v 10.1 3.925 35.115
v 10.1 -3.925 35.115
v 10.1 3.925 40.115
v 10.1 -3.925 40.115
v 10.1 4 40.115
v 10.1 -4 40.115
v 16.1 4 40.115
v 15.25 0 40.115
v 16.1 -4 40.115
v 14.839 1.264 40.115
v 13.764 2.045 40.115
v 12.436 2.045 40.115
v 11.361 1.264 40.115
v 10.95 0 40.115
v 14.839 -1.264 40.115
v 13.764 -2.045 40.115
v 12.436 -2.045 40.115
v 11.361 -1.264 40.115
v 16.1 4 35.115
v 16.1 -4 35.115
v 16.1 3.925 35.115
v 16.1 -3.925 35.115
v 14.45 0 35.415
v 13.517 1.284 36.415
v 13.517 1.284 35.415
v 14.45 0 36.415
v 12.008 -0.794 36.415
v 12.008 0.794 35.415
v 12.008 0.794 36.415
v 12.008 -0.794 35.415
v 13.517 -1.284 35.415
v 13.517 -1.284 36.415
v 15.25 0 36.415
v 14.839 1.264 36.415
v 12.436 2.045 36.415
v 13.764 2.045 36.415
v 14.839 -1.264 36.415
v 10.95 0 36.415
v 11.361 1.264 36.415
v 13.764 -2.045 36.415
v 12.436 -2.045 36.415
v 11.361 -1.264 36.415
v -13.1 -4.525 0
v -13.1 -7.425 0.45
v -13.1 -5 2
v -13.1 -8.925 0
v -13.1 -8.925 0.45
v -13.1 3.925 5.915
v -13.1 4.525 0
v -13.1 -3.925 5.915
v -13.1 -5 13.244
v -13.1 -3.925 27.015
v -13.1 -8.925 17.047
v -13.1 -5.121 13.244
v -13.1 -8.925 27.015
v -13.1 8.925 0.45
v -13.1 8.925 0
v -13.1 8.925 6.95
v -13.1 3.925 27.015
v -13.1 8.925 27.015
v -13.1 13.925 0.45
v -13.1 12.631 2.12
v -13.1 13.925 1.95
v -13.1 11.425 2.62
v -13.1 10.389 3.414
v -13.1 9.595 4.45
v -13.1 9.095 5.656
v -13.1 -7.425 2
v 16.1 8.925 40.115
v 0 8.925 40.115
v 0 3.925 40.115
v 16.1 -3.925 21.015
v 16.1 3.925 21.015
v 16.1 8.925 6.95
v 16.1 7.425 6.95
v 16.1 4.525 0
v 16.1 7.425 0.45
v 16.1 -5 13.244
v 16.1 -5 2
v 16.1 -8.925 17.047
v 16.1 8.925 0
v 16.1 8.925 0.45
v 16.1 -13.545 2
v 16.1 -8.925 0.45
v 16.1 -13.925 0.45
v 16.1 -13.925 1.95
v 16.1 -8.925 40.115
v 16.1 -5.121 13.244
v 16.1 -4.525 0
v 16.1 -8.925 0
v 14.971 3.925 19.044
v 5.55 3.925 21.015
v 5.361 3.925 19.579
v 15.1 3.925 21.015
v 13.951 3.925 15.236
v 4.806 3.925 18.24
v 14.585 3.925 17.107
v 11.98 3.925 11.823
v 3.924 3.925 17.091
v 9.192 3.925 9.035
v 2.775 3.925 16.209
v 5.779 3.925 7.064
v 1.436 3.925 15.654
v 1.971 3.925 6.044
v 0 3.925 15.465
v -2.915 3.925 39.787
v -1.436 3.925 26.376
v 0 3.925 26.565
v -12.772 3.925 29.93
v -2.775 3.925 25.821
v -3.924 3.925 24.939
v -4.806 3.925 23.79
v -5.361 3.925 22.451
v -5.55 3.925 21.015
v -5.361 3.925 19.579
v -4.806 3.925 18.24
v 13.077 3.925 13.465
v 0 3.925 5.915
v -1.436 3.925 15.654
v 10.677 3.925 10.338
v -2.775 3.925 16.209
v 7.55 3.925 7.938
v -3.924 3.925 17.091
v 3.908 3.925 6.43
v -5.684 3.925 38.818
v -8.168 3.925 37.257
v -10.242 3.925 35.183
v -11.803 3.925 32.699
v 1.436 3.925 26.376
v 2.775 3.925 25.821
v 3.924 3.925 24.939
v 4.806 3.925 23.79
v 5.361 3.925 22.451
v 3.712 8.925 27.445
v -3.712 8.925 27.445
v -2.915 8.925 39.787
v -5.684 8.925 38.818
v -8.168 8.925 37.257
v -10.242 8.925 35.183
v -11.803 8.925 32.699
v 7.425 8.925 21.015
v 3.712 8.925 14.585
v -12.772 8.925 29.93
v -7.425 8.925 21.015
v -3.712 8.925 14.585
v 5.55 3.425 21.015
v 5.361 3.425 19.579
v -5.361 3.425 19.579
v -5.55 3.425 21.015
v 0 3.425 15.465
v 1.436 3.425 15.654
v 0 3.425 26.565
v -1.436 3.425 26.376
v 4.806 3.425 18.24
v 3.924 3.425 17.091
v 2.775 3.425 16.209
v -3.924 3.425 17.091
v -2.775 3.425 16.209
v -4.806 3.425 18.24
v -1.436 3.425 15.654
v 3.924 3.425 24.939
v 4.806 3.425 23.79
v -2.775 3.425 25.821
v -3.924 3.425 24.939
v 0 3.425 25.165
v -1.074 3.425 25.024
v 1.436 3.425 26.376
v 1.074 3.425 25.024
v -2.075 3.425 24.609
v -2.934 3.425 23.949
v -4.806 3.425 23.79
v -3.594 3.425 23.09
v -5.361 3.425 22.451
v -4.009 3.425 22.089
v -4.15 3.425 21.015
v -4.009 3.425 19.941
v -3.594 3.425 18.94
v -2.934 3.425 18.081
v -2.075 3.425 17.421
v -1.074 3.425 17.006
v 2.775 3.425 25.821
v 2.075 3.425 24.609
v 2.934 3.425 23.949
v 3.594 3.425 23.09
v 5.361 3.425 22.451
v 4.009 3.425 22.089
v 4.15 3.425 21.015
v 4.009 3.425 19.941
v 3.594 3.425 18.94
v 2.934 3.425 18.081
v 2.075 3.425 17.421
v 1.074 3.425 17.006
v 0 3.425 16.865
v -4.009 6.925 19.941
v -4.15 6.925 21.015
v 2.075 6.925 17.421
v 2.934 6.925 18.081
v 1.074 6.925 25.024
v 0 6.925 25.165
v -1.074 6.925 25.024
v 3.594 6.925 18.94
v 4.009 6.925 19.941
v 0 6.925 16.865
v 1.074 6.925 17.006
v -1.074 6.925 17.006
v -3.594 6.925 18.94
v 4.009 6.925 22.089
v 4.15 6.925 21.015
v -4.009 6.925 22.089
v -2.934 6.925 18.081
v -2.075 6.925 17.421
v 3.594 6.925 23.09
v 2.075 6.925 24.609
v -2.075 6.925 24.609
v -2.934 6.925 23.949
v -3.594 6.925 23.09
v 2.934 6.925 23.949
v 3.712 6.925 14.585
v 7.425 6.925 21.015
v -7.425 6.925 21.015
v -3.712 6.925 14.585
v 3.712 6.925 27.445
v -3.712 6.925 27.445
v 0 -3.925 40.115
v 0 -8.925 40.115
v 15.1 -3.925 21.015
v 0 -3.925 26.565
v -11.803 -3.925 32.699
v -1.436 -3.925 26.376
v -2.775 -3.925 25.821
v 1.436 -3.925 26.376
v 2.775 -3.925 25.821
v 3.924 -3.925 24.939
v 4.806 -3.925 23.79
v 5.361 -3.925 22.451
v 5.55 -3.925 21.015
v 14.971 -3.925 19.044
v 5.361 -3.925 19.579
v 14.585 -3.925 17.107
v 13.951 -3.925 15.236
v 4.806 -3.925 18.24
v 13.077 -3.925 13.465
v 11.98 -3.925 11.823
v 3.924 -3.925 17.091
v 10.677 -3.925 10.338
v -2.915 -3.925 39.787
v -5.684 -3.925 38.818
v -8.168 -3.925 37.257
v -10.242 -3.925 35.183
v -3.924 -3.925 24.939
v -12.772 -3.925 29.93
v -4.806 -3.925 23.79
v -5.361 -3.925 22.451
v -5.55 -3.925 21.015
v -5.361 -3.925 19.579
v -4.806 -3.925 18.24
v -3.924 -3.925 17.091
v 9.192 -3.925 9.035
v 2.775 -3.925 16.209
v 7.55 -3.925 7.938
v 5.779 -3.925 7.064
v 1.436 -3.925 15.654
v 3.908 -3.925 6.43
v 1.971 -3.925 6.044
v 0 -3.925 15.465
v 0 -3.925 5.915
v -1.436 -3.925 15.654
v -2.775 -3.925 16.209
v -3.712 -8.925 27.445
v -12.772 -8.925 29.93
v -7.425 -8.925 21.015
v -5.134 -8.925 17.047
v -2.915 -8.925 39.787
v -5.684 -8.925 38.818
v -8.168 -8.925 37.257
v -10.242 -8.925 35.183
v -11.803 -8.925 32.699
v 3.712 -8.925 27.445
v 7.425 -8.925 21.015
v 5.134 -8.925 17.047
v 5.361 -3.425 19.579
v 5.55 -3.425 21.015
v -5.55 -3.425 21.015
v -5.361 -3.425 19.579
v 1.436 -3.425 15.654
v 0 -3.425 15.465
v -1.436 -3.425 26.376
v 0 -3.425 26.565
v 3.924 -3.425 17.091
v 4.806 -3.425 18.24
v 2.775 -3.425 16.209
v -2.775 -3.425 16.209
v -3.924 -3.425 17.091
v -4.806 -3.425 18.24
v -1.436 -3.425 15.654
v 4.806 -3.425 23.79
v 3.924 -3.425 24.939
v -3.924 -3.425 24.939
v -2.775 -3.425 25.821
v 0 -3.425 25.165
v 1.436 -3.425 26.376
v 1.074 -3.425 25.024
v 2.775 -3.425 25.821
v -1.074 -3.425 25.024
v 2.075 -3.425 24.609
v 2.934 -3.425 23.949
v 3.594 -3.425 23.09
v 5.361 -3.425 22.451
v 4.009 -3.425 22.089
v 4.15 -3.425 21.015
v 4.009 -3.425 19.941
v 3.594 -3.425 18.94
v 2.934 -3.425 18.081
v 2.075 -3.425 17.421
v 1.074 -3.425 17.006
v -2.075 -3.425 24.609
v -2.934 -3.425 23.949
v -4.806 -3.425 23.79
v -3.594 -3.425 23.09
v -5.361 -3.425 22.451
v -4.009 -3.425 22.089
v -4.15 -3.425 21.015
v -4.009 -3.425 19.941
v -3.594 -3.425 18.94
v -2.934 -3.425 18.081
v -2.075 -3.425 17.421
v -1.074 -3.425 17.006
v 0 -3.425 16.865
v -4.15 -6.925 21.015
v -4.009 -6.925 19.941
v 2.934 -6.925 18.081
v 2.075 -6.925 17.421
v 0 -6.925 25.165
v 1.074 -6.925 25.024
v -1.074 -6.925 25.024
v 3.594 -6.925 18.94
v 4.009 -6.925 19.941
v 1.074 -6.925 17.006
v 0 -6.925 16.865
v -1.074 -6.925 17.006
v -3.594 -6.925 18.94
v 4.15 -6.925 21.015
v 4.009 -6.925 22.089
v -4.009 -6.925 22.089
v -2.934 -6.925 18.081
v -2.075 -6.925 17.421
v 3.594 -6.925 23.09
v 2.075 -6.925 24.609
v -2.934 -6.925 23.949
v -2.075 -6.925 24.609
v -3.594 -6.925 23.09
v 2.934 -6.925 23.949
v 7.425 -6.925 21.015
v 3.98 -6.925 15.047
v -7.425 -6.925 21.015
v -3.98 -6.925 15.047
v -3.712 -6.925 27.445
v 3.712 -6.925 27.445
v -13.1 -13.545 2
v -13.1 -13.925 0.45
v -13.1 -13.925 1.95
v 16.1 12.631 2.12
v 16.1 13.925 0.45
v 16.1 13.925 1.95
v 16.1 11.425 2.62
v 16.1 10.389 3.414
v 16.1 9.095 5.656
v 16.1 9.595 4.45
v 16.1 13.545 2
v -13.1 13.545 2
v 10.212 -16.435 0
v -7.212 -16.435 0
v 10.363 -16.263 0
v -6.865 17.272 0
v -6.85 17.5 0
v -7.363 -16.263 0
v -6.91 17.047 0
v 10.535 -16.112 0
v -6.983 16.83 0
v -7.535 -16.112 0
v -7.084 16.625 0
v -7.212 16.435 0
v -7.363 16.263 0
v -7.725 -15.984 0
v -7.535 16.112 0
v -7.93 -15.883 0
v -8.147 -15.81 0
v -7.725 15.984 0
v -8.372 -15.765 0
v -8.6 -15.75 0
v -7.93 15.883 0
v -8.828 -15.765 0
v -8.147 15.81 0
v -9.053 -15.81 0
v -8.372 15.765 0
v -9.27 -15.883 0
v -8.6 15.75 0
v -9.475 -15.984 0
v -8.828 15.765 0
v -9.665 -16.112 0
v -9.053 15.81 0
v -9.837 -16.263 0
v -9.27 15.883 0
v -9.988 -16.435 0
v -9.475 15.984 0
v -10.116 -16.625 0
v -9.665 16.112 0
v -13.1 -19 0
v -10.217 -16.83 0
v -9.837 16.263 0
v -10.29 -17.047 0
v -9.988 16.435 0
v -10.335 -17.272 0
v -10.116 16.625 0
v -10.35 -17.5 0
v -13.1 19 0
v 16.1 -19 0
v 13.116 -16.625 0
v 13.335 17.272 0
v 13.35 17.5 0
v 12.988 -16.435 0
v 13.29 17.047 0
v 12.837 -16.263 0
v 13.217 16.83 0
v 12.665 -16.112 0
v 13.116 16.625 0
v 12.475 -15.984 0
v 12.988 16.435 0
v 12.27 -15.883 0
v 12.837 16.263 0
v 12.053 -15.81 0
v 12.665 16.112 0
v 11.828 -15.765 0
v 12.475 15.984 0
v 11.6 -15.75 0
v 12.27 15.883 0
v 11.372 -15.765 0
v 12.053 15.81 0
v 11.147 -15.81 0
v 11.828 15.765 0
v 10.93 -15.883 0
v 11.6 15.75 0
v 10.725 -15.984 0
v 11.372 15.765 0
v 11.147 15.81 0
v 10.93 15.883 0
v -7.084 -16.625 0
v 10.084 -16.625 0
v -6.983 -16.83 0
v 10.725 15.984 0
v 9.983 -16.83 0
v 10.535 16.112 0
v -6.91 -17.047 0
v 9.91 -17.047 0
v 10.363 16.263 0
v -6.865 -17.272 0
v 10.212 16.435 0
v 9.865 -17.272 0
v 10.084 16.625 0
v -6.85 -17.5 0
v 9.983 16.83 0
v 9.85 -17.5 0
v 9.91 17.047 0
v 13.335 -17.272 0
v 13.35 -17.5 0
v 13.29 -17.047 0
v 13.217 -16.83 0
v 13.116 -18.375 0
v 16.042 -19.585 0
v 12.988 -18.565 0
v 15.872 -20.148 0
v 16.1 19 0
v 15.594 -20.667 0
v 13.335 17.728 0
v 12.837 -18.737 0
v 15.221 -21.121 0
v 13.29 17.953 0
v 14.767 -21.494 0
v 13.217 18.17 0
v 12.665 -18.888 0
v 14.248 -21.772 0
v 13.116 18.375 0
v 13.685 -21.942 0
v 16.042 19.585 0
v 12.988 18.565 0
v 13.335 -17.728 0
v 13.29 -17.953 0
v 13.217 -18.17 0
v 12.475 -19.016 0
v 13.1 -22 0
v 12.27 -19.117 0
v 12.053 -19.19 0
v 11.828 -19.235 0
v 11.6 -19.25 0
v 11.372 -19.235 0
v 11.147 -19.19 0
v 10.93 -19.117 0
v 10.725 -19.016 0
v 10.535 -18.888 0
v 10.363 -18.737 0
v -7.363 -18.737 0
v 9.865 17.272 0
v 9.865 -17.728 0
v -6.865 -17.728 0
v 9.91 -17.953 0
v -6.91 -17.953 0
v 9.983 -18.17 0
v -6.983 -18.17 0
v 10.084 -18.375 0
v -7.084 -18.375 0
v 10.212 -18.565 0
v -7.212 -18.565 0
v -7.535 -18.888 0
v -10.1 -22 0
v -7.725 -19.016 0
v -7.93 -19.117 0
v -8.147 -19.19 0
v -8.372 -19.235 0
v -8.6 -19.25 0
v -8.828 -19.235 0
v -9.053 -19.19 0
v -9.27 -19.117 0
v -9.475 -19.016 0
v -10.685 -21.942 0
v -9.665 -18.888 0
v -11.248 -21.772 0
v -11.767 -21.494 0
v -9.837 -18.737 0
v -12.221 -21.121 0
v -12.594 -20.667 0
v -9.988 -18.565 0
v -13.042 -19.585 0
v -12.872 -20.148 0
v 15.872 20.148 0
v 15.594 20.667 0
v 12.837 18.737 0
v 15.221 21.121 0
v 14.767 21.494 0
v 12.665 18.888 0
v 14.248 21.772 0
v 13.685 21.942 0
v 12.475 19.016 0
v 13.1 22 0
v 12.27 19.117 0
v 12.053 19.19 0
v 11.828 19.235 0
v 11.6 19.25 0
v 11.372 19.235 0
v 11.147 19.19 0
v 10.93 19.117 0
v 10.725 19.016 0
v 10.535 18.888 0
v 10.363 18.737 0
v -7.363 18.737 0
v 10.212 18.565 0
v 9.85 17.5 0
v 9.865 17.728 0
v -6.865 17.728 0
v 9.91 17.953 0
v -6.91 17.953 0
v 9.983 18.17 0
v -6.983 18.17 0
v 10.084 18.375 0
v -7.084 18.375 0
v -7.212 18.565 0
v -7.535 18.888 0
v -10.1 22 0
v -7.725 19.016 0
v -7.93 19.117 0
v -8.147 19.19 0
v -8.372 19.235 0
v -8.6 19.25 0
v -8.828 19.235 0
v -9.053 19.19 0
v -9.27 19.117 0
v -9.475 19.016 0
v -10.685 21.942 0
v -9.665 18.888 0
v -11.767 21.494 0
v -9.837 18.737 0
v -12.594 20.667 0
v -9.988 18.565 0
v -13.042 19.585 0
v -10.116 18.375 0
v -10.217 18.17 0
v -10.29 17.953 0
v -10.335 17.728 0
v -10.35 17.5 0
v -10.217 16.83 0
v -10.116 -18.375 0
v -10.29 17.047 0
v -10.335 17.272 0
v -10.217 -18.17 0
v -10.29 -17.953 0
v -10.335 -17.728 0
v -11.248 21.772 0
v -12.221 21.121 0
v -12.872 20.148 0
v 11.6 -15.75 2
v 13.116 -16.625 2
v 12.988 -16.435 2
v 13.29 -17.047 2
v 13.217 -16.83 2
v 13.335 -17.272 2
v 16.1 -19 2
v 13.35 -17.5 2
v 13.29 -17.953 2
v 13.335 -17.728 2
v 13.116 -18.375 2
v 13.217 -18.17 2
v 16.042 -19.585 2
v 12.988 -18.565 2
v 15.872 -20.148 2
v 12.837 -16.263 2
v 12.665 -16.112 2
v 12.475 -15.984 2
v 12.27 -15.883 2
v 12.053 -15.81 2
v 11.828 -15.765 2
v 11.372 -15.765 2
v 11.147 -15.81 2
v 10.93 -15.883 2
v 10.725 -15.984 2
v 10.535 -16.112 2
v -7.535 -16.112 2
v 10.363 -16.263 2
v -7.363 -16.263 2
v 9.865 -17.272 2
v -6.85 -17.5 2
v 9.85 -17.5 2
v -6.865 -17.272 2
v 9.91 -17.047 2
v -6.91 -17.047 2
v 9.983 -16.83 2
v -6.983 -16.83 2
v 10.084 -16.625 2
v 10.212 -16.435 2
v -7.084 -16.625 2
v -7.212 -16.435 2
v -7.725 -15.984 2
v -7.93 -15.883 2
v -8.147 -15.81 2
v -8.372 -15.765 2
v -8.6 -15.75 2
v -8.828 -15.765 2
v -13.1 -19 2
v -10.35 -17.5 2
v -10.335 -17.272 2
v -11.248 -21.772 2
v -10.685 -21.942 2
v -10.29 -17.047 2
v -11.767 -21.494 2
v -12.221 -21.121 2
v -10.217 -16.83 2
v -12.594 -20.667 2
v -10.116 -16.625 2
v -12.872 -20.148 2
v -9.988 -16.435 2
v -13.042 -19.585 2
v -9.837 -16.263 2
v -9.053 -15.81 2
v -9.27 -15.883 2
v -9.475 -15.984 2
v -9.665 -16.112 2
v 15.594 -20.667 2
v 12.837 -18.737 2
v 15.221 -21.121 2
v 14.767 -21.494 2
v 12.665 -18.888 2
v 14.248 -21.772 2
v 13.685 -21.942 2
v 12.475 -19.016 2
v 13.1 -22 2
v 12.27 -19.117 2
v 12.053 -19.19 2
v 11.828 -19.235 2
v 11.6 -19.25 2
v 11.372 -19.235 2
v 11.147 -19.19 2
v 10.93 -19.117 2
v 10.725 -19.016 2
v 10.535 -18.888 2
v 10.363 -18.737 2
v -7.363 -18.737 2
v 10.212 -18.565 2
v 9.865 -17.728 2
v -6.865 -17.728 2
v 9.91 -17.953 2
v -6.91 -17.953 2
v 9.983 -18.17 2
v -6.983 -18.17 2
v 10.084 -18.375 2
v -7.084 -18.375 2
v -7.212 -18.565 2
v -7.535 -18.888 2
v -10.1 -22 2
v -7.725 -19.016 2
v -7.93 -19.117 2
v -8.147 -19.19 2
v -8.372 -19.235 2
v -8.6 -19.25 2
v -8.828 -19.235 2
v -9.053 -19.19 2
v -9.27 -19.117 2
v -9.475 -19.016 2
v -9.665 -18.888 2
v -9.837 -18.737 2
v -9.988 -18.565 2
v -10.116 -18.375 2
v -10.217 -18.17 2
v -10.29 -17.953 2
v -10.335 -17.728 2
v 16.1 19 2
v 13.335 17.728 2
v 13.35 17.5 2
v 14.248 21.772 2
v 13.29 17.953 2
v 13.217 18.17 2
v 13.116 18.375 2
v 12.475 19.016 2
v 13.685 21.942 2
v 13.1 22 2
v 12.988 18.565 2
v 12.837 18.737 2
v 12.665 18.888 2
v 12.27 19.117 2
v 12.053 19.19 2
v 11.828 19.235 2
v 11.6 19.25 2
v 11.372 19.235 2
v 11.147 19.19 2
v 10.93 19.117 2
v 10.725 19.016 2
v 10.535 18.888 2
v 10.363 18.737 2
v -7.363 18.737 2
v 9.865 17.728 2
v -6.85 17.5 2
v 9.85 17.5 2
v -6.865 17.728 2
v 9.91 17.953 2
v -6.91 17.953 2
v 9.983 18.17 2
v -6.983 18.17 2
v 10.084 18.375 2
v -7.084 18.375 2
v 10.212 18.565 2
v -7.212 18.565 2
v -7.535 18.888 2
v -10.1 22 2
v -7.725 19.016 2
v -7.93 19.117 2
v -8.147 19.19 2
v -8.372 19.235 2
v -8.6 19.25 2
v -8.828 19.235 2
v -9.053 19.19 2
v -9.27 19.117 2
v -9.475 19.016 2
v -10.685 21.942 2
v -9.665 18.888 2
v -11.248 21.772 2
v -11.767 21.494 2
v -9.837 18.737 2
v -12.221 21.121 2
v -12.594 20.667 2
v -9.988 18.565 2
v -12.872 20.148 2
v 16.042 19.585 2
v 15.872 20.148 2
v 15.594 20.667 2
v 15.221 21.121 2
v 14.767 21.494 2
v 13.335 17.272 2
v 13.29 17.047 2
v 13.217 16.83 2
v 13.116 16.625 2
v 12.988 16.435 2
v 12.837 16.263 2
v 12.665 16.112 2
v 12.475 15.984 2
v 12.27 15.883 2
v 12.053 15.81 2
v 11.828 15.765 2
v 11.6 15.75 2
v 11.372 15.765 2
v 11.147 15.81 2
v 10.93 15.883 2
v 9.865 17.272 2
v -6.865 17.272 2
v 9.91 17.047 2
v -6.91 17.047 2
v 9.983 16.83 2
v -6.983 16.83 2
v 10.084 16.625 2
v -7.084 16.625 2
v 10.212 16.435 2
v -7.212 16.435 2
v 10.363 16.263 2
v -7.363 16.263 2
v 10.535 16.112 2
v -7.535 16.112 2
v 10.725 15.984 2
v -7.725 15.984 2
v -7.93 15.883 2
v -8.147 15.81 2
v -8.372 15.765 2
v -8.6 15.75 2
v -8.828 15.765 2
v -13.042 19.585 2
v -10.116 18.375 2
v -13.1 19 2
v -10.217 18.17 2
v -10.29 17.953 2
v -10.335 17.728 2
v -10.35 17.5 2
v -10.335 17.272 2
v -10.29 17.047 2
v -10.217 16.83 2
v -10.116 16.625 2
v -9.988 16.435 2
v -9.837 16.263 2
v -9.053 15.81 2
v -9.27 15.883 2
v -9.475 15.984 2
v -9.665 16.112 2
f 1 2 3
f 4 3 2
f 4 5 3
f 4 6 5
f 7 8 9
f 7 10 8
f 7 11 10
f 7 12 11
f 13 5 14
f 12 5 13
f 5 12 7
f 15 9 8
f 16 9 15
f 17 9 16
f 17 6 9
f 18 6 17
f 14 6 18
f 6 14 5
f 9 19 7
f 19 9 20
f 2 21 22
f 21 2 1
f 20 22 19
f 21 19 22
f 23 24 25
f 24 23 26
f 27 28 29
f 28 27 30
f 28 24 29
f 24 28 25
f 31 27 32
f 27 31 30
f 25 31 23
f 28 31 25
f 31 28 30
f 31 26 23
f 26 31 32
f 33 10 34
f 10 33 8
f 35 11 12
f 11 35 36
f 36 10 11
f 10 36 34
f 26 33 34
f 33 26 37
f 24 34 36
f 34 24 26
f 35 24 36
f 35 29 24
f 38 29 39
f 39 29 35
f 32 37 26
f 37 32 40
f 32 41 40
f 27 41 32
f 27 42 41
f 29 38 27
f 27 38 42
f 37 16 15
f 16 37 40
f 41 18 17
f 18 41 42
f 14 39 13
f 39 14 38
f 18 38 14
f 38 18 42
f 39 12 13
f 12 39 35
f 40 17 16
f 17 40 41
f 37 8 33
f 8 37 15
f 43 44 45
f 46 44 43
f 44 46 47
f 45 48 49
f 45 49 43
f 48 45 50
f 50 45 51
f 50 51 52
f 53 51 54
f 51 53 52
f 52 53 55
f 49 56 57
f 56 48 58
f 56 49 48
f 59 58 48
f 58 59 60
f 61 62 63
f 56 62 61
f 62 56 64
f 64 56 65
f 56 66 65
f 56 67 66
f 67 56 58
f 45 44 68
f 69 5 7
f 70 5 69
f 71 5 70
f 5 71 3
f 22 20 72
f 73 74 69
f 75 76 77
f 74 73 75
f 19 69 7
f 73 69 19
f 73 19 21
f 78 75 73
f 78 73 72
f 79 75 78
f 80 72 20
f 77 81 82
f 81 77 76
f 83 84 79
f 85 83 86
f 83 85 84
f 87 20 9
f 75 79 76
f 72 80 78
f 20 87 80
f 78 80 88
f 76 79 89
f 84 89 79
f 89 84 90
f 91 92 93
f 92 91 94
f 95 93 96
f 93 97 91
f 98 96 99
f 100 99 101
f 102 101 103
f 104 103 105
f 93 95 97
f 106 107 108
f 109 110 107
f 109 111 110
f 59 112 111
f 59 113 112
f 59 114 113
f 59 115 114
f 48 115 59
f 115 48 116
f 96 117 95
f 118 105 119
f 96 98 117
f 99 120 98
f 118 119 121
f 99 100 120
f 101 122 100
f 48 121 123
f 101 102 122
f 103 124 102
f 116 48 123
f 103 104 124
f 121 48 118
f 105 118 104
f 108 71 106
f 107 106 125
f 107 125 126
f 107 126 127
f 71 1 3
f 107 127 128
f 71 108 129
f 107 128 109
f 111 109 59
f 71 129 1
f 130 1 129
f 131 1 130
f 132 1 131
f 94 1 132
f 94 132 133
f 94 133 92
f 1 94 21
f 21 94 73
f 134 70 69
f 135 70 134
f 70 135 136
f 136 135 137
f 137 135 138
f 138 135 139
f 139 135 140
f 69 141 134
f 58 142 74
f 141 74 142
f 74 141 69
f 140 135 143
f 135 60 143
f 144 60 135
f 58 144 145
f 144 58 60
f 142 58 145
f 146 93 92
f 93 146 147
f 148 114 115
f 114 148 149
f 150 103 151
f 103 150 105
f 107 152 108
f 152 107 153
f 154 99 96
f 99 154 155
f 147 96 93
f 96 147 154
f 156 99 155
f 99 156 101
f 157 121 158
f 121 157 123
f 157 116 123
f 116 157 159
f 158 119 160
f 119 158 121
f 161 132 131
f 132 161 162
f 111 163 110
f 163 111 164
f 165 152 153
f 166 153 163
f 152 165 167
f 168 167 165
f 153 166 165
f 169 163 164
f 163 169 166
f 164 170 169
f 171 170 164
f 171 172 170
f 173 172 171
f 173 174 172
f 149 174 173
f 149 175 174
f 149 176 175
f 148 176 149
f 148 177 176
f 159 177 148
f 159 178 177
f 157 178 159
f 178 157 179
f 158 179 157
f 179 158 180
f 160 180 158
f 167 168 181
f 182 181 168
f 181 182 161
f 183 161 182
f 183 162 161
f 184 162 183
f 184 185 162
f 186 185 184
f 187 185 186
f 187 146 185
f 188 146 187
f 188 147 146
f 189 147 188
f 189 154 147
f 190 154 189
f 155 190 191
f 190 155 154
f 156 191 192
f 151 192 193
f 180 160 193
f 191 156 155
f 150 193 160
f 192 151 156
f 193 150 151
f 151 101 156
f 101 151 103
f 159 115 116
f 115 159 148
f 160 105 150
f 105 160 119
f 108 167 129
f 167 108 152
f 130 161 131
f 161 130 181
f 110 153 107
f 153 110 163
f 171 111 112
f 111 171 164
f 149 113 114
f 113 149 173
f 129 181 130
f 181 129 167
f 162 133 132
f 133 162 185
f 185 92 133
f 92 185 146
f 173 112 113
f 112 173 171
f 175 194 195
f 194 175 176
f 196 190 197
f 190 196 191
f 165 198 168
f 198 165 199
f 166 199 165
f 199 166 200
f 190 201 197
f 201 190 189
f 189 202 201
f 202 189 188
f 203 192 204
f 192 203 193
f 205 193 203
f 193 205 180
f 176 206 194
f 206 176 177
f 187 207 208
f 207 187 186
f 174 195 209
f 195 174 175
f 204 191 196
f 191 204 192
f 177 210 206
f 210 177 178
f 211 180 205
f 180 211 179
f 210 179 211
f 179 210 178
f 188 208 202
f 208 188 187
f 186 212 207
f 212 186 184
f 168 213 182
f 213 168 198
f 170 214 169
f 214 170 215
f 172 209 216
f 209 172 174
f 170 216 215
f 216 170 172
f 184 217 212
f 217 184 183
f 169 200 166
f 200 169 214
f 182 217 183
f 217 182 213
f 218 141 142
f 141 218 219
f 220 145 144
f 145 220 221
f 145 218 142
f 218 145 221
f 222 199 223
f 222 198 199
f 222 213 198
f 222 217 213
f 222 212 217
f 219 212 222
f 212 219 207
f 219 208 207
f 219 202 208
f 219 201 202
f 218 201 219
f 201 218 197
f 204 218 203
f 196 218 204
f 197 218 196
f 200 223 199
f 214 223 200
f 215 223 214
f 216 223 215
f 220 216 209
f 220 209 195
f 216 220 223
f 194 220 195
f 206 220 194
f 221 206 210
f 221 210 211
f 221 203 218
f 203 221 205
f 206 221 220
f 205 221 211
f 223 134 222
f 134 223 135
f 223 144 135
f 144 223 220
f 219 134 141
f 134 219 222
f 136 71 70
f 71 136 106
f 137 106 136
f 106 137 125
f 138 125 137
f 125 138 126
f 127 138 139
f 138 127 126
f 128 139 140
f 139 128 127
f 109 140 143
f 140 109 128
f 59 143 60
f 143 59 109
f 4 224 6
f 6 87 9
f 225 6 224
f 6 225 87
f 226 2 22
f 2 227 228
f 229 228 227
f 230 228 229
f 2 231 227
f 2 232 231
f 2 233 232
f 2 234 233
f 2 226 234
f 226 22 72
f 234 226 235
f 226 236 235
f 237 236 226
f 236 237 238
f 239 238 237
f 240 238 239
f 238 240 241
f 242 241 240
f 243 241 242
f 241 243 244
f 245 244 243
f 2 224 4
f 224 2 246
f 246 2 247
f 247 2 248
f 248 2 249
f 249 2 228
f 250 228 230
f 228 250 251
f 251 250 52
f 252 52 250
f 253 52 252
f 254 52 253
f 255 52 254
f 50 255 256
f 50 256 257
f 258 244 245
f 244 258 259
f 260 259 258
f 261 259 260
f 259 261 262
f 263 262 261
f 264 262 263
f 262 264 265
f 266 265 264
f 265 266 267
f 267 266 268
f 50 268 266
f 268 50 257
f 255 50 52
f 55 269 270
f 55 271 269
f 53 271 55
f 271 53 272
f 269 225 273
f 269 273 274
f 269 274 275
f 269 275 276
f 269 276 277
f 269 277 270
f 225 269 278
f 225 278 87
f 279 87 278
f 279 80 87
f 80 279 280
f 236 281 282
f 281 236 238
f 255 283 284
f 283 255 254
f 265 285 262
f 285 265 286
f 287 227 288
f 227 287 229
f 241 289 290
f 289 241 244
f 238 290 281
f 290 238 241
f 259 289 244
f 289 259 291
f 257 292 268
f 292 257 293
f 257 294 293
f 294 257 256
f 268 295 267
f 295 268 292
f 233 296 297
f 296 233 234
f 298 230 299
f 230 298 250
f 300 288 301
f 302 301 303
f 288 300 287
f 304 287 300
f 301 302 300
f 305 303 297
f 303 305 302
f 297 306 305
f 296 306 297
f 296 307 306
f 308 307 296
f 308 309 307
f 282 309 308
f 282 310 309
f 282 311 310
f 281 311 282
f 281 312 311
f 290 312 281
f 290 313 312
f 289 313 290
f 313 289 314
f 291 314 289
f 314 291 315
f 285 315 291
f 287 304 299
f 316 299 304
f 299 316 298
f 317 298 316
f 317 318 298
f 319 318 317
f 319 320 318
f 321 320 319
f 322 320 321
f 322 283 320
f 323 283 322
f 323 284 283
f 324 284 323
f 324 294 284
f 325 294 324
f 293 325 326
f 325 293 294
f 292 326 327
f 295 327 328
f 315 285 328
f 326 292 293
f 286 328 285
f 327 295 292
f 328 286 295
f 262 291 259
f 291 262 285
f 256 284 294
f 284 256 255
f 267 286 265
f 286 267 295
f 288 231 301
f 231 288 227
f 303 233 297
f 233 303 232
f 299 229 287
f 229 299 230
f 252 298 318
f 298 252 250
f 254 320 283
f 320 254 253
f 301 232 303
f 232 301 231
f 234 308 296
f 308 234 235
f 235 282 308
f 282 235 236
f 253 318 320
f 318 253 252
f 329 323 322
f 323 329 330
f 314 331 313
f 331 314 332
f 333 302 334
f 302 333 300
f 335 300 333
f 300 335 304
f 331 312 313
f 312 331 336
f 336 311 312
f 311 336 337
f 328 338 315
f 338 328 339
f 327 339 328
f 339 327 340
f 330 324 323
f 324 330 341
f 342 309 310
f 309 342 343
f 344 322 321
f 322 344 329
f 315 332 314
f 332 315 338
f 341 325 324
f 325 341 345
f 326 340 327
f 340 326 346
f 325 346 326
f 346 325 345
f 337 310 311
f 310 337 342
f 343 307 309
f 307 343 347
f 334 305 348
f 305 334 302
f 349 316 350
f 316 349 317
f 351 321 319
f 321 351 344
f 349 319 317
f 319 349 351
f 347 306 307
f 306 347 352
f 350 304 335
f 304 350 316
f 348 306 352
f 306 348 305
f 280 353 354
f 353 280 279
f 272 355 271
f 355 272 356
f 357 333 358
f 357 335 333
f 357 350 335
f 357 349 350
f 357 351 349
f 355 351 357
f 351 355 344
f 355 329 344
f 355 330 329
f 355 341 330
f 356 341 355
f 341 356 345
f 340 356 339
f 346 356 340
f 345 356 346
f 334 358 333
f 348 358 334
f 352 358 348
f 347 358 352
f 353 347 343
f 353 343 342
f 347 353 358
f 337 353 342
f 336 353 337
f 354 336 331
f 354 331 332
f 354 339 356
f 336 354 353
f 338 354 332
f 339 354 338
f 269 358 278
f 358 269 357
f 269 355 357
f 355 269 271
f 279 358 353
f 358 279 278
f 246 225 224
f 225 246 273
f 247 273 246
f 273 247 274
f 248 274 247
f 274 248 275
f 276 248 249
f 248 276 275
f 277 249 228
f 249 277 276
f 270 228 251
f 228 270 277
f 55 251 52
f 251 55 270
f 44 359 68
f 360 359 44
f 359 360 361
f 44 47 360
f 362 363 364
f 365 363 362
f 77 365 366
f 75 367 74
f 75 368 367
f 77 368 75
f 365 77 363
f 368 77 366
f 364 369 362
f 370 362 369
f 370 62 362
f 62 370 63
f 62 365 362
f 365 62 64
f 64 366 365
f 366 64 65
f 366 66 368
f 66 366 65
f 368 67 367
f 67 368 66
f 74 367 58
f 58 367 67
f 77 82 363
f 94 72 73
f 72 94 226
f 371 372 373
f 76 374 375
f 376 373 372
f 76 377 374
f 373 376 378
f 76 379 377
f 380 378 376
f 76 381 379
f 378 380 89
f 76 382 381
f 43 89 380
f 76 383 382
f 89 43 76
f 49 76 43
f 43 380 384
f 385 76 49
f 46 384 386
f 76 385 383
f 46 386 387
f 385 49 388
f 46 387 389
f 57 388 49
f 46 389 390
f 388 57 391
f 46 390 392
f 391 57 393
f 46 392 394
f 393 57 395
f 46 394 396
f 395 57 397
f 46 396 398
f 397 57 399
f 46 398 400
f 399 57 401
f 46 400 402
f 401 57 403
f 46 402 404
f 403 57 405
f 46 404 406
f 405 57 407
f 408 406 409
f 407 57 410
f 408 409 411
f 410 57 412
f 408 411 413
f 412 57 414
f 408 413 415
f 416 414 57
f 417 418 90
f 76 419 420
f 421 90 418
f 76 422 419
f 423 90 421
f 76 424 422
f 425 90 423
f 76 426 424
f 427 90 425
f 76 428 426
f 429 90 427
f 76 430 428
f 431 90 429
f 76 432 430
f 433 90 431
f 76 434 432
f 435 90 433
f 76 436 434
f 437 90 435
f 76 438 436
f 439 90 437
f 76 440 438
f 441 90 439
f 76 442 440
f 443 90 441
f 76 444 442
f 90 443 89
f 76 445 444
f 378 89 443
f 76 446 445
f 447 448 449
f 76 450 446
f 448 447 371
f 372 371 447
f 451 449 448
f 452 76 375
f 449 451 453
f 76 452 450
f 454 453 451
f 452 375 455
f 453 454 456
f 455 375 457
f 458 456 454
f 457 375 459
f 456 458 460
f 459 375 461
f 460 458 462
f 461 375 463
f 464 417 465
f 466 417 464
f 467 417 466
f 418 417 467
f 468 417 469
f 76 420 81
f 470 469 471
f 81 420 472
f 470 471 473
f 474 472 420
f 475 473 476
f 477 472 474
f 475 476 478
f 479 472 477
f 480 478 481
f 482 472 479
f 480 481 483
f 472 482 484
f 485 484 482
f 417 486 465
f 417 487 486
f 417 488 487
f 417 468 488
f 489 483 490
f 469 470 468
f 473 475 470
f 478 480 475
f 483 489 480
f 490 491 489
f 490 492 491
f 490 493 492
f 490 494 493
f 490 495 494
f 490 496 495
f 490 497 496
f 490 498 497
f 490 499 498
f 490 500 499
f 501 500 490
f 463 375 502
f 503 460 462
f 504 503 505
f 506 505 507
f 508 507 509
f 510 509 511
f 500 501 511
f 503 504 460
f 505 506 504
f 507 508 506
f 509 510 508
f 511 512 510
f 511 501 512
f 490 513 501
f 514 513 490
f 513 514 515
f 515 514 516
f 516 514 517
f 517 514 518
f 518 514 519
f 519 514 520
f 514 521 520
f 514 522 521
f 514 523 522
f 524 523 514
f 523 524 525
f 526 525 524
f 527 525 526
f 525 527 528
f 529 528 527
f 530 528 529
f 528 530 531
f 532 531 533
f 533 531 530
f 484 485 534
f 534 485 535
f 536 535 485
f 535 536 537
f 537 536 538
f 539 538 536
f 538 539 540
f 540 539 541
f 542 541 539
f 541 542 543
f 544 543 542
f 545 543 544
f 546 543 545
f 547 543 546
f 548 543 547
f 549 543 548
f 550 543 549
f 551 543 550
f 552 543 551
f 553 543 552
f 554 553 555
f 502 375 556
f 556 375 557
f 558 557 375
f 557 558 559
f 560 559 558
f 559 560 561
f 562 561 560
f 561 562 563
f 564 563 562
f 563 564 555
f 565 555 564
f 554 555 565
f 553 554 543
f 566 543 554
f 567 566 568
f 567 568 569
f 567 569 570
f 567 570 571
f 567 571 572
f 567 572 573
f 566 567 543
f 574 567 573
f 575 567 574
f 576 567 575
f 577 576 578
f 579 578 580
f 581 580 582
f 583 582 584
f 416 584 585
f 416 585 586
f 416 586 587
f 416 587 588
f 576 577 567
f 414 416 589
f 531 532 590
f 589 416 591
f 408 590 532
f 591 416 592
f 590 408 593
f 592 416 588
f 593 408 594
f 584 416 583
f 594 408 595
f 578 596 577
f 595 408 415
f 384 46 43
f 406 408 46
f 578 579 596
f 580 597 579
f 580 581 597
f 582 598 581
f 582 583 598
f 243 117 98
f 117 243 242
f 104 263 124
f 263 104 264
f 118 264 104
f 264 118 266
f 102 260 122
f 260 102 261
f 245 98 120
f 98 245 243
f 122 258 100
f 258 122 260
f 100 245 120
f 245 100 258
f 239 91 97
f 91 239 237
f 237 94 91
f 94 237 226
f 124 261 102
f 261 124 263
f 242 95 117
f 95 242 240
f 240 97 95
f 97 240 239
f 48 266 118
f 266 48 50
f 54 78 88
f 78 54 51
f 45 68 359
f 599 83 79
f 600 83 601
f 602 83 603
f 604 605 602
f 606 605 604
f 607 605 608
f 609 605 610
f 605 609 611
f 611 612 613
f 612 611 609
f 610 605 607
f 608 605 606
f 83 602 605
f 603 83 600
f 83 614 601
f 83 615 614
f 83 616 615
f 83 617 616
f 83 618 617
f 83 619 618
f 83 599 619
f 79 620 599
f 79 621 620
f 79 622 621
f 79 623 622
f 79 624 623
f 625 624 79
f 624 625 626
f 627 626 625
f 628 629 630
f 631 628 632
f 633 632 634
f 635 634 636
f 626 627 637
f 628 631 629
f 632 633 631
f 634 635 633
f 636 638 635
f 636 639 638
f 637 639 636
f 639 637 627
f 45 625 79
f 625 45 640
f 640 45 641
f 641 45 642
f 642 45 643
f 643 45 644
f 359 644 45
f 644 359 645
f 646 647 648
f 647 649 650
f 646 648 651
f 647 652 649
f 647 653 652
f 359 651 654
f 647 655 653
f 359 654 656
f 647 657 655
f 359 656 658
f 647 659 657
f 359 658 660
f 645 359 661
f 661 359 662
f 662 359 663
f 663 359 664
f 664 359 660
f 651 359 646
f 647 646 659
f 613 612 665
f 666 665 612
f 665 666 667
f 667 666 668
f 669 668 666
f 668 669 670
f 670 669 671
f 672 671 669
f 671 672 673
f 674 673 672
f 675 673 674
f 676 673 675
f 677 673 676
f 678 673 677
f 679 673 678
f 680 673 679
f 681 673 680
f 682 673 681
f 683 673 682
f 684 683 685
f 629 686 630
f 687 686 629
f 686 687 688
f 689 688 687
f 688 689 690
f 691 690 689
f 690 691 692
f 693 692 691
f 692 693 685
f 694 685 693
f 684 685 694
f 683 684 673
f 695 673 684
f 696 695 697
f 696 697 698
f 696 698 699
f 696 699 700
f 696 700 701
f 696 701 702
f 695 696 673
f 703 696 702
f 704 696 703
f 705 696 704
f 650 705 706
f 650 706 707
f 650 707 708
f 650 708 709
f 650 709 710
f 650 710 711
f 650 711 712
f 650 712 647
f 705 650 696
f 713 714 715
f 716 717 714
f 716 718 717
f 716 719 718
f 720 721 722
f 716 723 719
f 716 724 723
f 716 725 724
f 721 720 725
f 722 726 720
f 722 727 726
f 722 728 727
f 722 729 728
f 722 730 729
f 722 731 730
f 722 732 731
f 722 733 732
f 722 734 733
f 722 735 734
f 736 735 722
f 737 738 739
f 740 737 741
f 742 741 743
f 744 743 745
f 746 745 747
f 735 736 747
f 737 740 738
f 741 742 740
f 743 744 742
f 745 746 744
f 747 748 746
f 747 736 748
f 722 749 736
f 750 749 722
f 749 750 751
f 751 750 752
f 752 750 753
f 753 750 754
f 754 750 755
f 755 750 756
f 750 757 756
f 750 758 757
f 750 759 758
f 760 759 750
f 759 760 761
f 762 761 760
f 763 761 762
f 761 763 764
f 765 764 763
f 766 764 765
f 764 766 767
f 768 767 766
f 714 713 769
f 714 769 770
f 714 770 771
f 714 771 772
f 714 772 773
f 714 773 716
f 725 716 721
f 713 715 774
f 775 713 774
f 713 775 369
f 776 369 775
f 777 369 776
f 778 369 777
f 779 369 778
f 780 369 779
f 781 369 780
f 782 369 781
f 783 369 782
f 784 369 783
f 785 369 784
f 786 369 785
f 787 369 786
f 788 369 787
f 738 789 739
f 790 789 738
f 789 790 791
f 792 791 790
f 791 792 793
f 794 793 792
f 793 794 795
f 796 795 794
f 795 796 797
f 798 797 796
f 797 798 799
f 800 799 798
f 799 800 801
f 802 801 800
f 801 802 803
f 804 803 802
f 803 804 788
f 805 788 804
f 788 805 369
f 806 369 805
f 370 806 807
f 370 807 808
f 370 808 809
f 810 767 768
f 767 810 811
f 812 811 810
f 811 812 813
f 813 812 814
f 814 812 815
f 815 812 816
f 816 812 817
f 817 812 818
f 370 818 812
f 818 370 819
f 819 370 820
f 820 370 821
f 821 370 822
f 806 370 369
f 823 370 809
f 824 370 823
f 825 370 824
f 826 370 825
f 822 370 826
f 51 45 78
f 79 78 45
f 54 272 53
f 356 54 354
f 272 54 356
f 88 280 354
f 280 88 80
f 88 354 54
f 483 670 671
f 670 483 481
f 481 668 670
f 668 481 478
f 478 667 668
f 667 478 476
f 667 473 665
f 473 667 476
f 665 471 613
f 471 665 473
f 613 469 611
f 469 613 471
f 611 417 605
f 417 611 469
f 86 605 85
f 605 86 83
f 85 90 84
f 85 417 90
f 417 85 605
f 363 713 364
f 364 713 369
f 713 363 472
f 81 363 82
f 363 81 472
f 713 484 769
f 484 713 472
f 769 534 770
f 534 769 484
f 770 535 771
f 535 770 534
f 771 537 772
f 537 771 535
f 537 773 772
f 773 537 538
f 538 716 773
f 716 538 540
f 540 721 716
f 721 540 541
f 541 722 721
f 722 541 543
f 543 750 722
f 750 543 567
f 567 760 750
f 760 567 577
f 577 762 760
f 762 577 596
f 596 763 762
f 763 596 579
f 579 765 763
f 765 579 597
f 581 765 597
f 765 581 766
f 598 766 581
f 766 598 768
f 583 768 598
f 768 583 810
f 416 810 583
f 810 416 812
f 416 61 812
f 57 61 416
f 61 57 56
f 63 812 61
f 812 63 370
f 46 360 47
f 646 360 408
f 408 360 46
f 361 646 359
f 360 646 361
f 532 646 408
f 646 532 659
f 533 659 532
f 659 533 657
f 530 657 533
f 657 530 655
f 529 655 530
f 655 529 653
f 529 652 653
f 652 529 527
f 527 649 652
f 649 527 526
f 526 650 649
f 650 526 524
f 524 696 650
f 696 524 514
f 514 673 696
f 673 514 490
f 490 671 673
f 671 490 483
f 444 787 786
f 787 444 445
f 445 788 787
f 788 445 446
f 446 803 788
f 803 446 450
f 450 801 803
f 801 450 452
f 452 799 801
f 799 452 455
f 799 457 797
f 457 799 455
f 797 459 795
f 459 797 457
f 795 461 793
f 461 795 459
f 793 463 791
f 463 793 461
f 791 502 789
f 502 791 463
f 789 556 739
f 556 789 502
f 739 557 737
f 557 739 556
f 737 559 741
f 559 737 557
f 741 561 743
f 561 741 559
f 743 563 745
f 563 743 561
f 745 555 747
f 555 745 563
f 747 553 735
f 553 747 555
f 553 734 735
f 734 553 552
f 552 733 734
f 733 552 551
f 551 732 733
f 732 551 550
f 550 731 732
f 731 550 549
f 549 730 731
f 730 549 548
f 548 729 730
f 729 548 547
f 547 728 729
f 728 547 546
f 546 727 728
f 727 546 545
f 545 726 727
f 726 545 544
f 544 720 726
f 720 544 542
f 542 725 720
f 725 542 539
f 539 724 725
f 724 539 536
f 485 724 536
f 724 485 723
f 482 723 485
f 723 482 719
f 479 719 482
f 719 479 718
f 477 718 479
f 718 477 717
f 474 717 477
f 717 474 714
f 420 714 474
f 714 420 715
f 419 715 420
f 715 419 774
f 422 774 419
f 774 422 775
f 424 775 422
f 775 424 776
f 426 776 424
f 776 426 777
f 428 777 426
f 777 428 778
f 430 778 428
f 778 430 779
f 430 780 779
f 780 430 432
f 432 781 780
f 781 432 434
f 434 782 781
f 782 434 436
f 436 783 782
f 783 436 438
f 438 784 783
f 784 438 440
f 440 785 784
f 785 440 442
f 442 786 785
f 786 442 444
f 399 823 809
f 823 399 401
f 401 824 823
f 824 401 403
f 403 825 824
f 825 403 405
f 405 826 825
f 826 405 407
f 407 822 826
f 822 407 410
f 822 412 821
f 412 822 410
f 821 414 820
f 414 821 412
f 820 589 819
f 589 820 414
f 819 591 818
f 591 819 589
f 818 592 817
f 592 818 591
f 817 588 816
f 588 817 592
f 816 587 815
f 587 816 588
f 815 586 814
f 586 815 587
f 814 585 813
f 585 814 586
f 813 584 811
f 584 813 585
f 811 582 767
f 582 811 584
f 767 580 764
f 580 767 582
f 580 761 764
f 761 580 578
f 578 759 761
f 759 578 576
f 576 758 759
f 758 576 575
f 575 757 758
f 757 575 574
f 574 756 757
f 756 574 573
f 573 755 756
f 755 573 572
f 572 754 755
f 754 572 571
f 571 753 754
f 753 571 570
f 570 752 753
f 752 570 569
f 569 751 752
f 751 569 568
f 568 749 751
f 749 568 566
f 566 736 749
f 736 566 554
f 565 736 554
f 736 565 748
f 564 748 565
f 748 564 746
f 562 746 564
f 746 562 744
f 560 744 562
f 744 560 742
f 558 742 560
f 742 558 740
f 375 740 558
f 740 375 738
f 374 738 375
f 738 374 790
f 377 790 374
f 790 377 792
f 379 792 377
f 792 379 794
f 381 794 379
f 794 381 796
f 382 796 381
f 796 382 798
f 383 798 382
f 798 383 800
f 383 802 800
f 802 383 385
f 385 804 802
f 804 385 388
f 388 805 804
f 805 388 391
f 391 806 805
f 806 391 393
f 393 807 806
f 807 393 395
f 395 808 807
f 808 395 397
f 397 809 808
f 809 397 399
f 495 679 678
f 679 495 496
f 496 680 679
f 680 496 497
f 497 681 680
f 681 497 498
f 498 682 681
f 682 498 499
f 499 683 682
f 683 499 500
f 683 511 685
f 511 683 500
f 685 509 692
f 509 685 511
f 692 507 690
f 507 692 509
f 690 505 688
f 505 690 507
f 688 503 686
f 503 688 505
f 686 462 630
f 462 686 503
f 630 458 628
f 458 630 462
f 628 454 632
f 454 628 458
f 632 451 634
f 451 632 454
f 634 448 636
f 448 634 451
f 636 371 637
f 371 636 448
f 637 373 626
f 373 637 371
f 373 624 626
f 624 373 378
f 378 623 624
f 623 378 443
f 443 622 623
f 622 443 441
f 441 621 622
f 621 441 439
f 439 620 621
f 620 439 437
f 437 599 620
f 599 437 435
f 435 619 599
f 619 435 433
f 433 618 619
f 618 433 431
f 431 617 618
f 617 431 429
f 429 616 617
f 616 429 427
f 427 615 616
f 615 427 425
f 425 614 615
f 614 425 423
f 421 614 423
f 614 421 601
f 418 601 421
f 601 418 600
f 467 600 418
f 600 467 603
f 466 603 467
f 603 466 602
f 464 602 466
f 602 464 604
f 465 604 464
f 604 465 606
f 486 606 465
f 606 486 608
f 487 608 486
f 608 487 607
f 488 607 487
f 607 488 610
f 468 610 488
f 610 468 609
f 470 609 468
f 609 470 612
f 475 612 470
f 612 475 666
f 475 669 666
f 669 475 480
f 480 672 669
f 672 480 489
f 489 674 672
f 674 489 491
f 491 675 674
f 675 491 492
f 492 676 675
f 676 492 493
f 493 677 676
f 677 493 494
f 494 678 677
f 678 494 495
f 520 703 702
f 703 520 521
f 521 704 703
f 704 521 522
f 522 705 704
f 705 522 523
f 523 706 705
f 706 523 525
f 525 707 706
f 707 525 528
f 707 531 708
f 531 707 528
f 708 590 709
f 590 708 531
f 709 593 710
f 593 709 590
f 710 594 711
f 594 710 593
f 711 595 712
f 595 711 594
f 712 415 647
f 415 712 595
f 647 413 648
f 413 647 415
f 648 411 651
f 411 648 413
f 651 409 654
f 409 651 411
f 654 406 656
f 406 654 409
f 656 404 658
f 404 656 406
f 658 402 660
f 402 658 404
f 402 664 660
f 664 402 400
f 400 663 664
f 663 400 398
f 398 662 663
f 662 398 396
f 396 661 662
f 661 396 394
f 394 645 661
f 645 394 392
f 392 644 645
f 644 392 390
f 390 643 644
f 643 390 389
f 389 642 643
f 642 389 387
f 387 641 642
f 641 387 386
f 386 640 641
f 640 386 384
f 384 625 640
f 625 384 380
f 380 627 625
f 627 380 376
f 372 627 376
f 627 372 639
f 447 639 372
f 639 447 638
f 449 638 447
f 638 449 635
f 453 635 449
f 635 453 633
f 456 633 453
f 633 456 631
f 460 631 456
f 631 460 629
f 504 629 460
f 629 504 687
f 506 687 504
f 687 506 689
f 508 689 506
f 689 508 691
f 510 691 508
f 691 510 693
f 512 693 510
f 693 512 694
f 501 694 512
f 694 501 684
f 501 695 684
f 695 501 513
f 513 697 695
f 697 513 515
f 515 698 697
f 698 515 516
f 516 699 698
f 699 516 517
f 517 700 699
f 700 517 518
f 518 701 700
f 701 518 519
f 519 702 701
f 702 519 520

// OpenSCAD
// file: lib/parameters.scad
// Parameters shared between modules
Base_th = 2;
Beam_width = 15;
Wiggle = 0.25;
Fat_beam_width = Beam_width + Wiggle;
Beam_length = 400;
Wall_th = 2.5;
Min_beam_width = 12.5;
Max_beam_width = 17.5;
Zip_th = 2;
Zip_h = Zip_th + Max_beam_width - Min_beam_width;
Zip_w = 5.0;
Nema17_cube_width          = 42.43;
Nema17_screw_hole_width    = 43.74; // Opposite corner screws
Nema17_ring_diameter       = 22;
Nema17_cube_height         = 39.36;
Nema17_shaft_height        = 63.65;
Nema17_ring_height         = 2;
Nema17_shaft_radius        = 5/2;
b608_outer_dia = 22.2;
b608_width = 7.05;
b608_bore_r = 4;
b608_vgroove_big_r = b608_outer_dia/2 + 2;
b608_vgroove_small_r = b608_outer_dia/2;
b608_ugroove_big_r = b608_vgroove_big_r;
b608_ugroove_small_r = b608_vgroove_small_r;
Gap_between_sandwich_and_plate = 1.5 + Base_th; // 1.5 mm for wiggle
Motor_bracket_flerp_r = 6;
Motor_bracket_flerp = 14;
Motor_bracket_cw = Nema17_cube_width + 6;
Motor_bracket_att_ang = 50;
Mounting_screw_d = 3.5;
Mounting_screw_head_d = 14;
Spool_outer_wall_th = 4;

// Corner clamp parameters
Cc_l1 = (Fat_beam_width+2*Wall_th)*2*sqrt(3);
Cc_rad_b = 4;
Cc_action_point_from_mid = Cc_l1/sqrt(3)-2*Cc_rad_b-7;
Cc_plastic_length = sqrt(Cc_action_point_from_mid*Cc_action_point_from_mid
                       - (Cc_action_point_from_mid/2)*(Cc_action_point_from_mid/2));
Eyelet_extra_dist = 0.75;
Eyelet_diameter = 4.30;
Move_d_bearings_inwards = -2;

// The distance between the two action points on the mover
Sidelength = Beam_length + 2*Cc_plastic_length;

/////// Gear parameters ////////////
Circular_pitch = 262;
Motor_teeth = 10;
Gear_height = 21.4-3;
Motor_pitch                      = (Motor_teeth*Circular_pitch/360);
Motor_pitch_diametrial           = Motor_teeth/(2*Motor_pitch);
Motor_outer_radius               = Motor_pitch + 1/Motor_pitch_diametrial;
Spool_teeth = 100;
Spool_r = 75;
Spool_height = 8;
Spool_pitch                      = (Spool_teeth*Circular_pitch/360);
Spool_pitch_diametrial           = Spool_teeth/(2*Spool_pitch);
Spool_outer_radius               = Spool_pitch + 1/Spool_pitch_diametrial;
Sep_disc_radius = (161.83+1)/2; // Made to match 255 teeth gt2 pulley + 1
Motor_bracket_depth = Gear_height+1+7+Nema17_ring_height+1+Gap_between_sandwich_and_plate;
Spool_core_flerp0 = 16+3;

/////// Lineroller parameters ////////////
b623_width  = 4;
b623_bore_r = 3/2;
b623_big_ugroove_big_r = (12+3)/2;
b623_big_ugroove_small_r = (10+3)/2;
b623_outer_dia = 10;
b623_ugroove_room_to_grow_r = 1.1;
b608_ugroove_room_to_grow_r = 1.1;
b623_flange_dia = 11.5;
b623_flange_room_to_grow_r = 0.5;

Depth_of_roller_base = 18;
Roller_flerp = 6;
Roller_l = 42;
Roller_fl = (Roller_l - Depth_of_roller_base)/2;

Line_roller_wall_th = 5;

Line_roller_ABC_winch_h =  Gap_between_sandwich_and_plate
                           + Sep_disc_radius
                           - Spool_r
                           + Depth_of_roller_base/2
                           + b608_vgroove_small_r;

Shear_line_roller_double_bearings = 20;

Ptfe_r = 2.1;
Roller_base_r = 8;
Screw_h = 2;
Screw_head_h = 2;
M3_screw_head_d = 5.8;
Spool_center_bearing_wall_th = 5;
Corner_clamp_bearings_center_to_center = max(15, (b623_big_ugroove_big_r + b623_ugroove_room_to_grow_r)*2 + 5);
Anchor_bearings_center_to_center = Corner_clamp_bearings_center_to_center + b623_outer_dia;

//// Lineroller anchor parameters /////

Back_bearing_x = 6 + 1.5;
Front_bearing_x = -6 - 5;
Move_tower = -12.2;
Lower_bearing_z = 13;
Higher_bearing_z = Lower_bearing_z + Corner_clamp_bearings_center_to_center;

//// Cable Clamp parameters /////
Bit_width = 12;
Cable_r=2.5;

// Belt drive parameters
GT2_belt_width = 6.5;
GT2_gear_height = GT2_belt_width + 2;
GT2_motor_gear_height = 16;
GT2_motor_gear_outer_dia = 16;
GT2_spool_gear_teeth = 255;
GT2_motor_gear_teeth = 20;
Torx_depth = GT2_gear_height/2;
Belt_roller_h = 56;
Belt_thickness = 1.4;

Belt_roller_space_between_walls = 2*b623_width + 0.8;
Belt_roller_wall_th = (Depth_of_roller_base - Belt_roller_space_between_walls)/2+2;
Belt_roller_top_adj_screw_x = Depth_of_roller_base/2-3.7;
Belt_roller_top_adj_screw_y = Belt_roller_space_between_walls/2+2;
Belt_roller_containing_cube_ywidth = Belt_roller_space_between_walls+8.5;
Belt_roller_containing_cube_xwidth = 14;
Belt_roller_insert_h = 18;

Sandwich_ABC_width = 2*(1+Spool_height) + GT2_gear_height;
Sandwich_D_width = 4*(1+Spool_height) + GT2_gear_height;
Spool_core_halve_width = 14.3;
Spool_core_impression_in_spool_cover = 0;
Spool_cover_bottom_th = 1.5;
Spool_cover_shoulder = 2;
Spool_core_cover_adj = Spool_cover_shoulder+Spool_cover_bottom_th-Spool_core_impression_in_spool_cover;
Spool_core_tot_length = 136.458;
Spool_cover_outer_r = Sep_disc_radius + 2;
Gap_between_sep_disc_and_spool_cover = 0.55;

Smooth_rod_length_ABC = Sandwich_ABC_width + 2*(Spool_core_halve_width-Spool_core_impression_in_spool_cover + Spool_cover_bottom_th + Spool_cover_shoulder);
Smooth_rod_length_D = Sandwich_D_width + 2*(Spool_core_halve_width-Spool_core_impression_in_spool_cover + Spool_cover_bottom_th + Spool_cover_shoulder);
echo("Smooth_rod_length_ABC", Smooth_rod_length_ABC);
echo("Smooth_rod_length_D", Smooth_rod_length_D);

Spool_cover_tot_height = Spool_cover_bottom_th+Spool_cover_shoulder+1+Spool_height;
Spool_cover_D_left_tot_height = Spool_cover_shoulder+Spool_cover_bottom_th+1+Spool_height+1+Spool_height;

spd = Spool_height+GT2_gear_height;
// Horizontal_deflector_cube_y_size must be exact this number
// because we want to deflect AB-lines
// 60 degrees on the ceiling unit, and we want to put two
// deflectors in a row and get a distance between bearings
// that maintain the distance d when deflecting 60 degrees
Horizontal_deflector_cube_y_size = (2/sqrt(3))*spd;

Belt_roller_bearing_xpos = Sep_disc_radius + b623_outer_dia/2+Belt_thickness;


// Top plate parameters needed for layout slicer
Yshift_top_plate = -297.8;

Pen_holder_w = 55;
Pen_holder_rail_w = 36;
Pen_holder_bottom_th = 7;
// main file
include <lib/parameters.scad>
use <lib/util.scad>

bearing_lift = b608_vgroove_small_r+Gap_between_sandwich_and_plate + Sep_disc_radius - Spool_r;

//walls(b608_width+0.8, Line_roller_wall_th, Line_roller_ABC_winch_h, with_bearing=false);
module walls(space_between_walls, wall_th, height, rot_nut=0, bearing_screw=true, with_bearing=true){
  d = 2*b608_vgroove_big_r;

  translate([0,-space_between_walls/2 - wall_th + 0, Base_th-0.05])
    rotate([90,0,-90])
      translate([0,0,-d/2-3])
        inner_round_corner(h=d+3, r=5, ang=90, back=1.5, $fn=6*4);
  translate([0,space_between_walls/2 + wall_th - 0, Base_th-0.05])
    rotate([90,0,90])
      translate([0,0,-d/2])
        inner_round_corner(h=d+3, r=5, ang=90, back=1.5, $fn=6*4);
  translate([10.1,-8/2,bearing_lift+b608_outer_dia/2+3])
    difference(){
      cube([6, 8, 5]);
      translate([6/2,8/2,0.3])
        cylinder(d=2.7, h=10);
      translate([6/2,8/2,-1])
        translate([0,0,6-3.3-0.4])
          eyelet(h=10);

    }

  translate([0,0,bearing_lift]){
    if (with_bearing) {
      %rotate([90,0,0])
        difference(){
          b608_vgroove();
          M8_screw(h=40, center=true);
        }
    }
    for (k = [0,1]) mirror([0,k,0])
      difference(){
        union(){
          translate([-d/2, space_between_walls/2,-height+d/2-10])
            cube([d+3, wall_th, height+16]);
          translate([0, b608_width/2-0.1, 0])
            rotate([-90,0,0])
              cylinder(r=8.1/2 + 1.5, h=wall_th, $fn=24);
        }
        translate([0,0,6])
          rotate([-90,0,0])
            inner_round_corner(r=d/2, h=d, center=true, $fn=4*7);
        if(bearing_screw){
          translate([0,space_between_walls/2 - 1, 0])
            rotate([-90,0,0]){
              M8_screw(h=wall_th+2);
              translate([0,0,1+wall_th - min(wall_th/2, 2)])
                rotate([0,0,rot_nut])
                  M8_nut(h=8);
            }
        }
      }
  }
}

module base_2d(){
  w = 29.2;
  l = 44;
  translate([1.5,0,0])
  difference(){
    translate([-w/2,-l/2])
      rounded_cube2_2d([w, l], r=3, $fn=4*8);
    for(mirrx = [0,1])
      for(mirry = [0,1])
        mirror([mirrx,0,0]){
          mirror([0,mirry,0])
            translate([w/2-4.5,-l/2+4.5])
              Mounting_screw(twod=true);
    }
  }
}

module base(){
  linear_extrude(height=Base_th)
    base_2d();
}

line_roller_wire_rewinder(with_bearings=false, twod=false);
module line_roller_wire_rewinder(twod=false,
                          tower_h = Line_roller_ABC_winch_h,
                          with_bearings=false){

  s = b608_width + 0.8;
  wall_th = Line_roller_wall_th;

  if(!twod){
    difference() {
      union(){
        walls(s, wall_th, tower_h, with_bearing=with_bearings);
      }
      translate([0,0,-50])
        cube(100, center=true);
      translate([-40/2,-Spool_height-1-Spool_height/2-1, Base_th])
        cube([40,Spool_height+1, Gap_between_sandwich_and_plate+(Sep_disc_radius-Spool_r)/2 + (Sep_disc_radius - Spool_r)/sqrt(2)]);
      translate([-40/2,-Spool_height-1-Spool_height/2, Gap_between_sandwich_and_plate+(Sep_disc_radius-Spool_r)/2])
        translate([0,Spool_height,(Sep_disc_radius - Spool_r)])
          rotate([-45,0,0])
            translate([0,-Spool_height,-(Sep_disc_radius - Spool_r)])
              cube([40,Spool_height, Sep_disc_radius - Spool_r]);
    }

    difference(){
      translate([-b608_vgroove_big_r,-b608_width/2-1,  0])
        cube([2*(b608_vgroove_big_r)+3,b608_width+2,  bearing_lift]);
      translate([0,0,bearing_lift])
        rotate([90,0,0])
          cylinder(r=b608_vgroove_big_r+2, h=b608_width+4, center=true, $fn=4*12);
      translate([-2*b608_vgroove_big_r-3,-b608_width/2-1,  bearing_lift - b608_vgroove_big_r - 2])
        cube([2*(b608_vgroove_big_r)+3,b608_width+2,  bearing_lift]);
    }
    base();

  } else {
    base_2d();
  }
}
